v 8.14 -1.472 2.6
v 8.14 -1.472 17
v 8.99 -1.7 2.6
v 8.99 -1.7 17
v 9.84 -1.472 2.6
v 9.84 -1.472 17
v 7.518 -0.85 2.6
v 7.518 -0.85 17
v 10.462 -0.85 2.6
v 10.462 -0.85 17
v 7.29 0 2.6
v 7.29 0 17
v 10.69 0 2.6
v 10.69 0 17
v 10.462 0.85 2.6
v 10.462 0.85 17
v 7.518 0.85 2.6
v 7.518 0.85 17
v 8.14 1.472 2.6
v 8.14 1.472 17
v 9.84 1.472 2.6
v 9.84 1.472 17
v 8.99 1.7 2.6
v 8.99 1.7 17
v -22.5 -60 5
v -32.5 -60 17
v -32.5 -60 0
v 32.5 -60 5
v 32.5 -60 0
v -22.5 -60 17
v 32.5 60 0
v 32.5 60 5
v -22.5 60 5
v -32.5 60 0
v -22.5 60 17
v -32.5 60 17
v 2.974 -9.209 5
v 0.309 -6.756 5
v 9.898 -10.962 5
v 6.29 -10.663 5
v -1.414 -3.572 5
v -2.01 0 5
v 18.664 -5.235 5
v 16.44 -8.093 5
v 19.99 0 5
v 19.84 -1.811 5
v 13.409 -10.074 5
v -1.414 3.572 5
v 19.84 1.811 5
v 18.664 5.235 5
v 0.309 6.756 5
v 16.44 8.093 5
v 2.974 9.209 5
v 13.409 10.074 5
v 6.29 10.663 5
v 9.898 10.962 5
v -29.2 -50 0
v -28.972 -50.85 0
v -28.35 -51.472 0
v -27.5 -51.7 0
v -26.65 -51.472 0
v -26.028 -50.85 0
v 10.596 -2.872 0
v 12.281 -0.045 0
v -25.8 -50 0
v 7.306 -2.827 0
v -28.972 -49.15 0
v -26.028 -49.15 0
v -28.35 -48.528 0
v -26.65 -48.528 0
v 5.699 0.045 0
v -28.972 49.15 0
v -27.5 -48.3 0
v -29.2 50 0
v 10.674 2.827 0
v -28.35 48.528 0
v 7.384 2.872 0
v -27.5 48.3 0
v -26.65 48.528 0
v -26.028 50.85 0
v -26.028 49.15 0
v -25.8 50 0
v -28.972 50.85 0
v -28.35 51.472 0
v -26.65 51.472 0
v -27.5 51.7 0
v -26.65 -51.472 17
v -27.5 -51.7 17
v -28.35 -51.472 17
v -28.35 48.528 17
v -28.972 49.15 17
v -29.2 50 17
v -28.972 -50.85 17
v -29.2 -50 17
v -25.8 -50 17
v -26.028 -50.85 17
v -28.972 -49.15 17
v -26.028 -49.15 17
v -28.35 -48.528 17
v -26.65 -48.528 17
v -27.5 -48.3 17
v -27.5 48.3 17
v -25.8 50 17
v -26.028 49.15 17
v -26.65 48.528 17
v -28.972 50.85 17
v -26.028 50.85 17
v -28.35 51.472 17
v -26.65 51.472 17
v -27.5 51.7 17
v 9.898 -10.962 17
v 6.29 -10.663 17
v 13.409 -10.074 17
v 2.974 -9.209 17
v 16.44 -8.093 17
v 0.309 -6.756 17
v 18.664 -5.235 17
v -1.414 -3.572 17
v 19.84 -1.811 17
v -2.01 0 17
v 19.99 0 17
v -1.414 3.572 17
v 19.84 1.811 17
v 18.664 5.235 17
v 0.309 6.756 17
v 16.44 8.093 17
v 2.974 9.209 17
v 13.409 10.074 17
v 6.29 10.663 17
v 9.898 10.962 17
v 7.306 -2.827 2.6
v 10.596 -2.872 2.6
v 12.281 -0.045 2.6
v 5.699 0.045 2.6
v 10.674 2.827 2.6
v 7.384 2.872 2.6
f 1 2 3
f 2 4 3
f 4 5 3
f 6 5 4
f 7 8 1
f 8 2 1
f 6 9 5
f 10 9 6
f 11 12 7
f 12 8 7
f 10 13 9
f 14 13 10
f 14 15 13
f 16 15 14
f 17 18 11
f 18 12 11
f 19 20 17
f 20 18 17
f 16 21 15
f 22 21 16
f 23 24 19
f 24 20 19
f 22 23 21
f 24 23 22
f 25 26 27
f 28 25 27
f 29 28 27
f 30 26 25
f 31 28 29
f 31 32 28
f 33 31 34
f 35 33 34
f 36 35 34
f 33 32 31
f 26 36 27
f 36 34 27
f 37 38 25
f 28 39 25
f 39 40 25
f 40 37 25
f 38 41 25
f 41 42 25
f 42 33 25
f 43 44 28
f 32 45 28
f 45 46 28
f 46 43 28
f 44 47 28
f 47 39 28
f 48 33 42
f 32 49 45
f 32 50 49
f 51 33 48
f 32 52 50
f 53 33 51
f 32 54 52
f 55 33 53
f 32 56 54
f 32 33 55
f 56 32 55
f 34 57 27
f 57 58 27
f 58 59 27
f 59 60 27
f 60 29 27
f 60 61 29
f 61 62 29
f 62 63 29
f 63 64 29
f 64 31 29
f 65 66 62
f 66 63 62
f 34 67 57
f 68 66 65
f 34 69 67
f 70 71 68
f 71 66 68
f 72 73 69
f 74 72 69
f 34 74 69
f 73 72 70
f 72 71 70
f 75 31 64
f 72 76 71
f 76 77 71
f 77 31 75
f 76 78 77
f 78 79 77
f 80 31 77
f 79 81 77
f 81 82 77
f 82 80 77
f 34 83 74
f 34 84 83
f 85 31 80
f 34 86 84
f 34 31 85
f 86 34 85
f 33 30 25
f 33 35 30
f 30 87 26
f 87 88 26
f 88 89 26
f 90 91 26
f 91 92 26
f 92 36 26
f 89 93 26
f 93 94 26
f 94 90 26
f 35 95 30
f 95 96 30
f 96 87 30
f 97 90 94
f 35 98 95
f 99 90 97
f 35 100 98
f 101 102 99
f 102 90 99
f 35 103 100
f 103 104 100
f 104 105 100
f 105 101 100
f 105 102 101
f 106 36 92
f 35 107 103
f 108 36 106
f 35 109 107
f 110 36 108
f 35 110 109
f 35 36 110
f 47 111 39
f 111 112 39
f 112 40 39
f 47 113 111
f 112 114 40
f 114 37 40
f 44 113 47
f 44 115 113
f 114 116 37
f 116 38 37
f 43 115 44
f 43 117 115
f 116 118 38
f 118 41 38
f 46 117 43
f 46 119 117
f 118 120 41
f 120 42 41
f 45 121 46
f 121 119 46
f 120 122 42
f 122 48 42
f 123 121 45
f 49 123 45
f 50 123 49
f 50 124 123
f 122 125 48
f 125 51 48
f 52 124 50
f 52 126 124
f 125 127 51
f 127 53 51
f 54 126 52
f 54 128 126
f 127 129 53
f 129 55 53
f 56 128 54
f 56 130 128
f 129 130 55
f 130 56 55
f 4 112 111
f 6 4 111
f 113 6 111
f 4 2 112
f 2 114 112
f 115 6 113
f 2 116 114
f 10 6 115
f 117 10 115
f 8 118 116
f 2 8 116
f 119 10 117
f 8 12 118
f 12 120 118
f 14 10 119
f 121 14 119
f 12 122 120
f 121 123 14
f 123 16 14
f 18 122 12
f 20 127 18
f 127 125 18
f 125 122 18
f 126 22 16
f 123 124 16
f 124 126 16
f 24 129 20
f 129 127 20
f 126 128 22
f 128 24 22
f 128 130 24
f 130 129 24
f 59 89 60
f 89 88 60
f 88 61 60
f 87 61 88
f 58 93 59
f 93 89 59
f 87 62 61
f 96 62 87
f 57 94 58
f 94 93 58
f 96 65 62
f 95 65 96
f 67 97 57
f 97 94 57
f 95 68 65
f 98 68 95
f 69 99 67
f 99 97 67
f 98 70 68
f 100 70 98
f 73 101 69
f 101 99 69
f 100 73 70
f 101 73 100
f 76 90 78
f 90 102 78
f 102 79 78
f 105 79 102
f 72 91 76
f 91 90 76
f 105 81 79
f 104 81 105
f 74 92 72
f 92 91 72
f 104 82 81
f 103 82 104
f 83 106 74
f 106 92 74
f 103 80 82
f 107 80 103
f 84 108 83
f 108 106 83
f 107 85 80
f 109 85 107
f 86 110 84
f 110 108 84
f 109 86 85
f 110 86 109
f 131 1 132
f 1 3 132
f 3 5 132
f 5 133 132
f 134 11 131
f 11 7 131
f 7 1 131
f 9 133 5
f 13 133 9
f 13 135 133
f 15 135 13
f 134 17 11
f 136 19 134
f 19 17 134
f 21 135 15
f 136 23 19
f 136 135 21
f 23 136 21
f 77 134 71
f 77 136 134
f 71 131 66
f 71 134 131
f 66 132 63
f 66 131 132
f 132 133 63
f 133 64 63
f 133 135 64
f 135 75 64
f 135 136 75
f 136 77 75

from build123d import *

# Parameters (mm, degrees)
SKETCH1_W           = 120
SKETCH1_H           = 65
BOSS_EXTRUDE1_DEPTH = 5
SKETCH2_W           = 10
SKETCH2_H           = 120
BOSS_EXTRUDE2_DEPTH = 12
SKETCH3_R           = 11
BOSS_EXTRUDE3_DEPTH = 12
SKETCH4_R           = 1.7
CUT_EXTRUDE1_DEPTH  = 22
SKETCH5_R           = 1.7
CUT_EXTRUDE2_DEPTH  = 17
CUT_EXTRUDE3_DEPTH  = 2.6


with BuildPart() as part:
    # Sketch1 → Boss-Extrude1 (new body)
    with BuildSketch(Plane(origin=(0, 0, 0), x_dir=(0, 1, 0), z_dir=(0, 0, 1))):
        Rectangle(SKETCH1_W, SKETCH1_H)
    extrude(amount=BOSS_EXTRUDE1_DEPTH)

    # Sketch2 → Boss-Extrude2 (add)
    with BuildSketch(Plane.XY.offset(5)):
        with Locations((-27.5, 0)):
            Rectangle(SKETCH2_W, SKETCH2_H)
    extrude(amount=BOSS_EXTRUDE2_DEPTH)

    # Sketch3 → Boss-Extrude3 (add)
    with BuildSketch(Plane.XY.offset(5)):
        with Locations((8.99, 0)):
            Circle(SKETCH3_R)
    extrude(amount=BOSS_EXTRUDE3_DEPTH)

    # Sketch4 → Cut-Extrude1 (cut)
    with BuildSketch(Plane.XY.offset(17)):
        with Locations((-27.5, 50)):
            Circle(SKETCH4_R)
        with Locations((-27.5, -50)):
            Circle(SKETCH4_R)
    extrude(amount=-CUT_EXTRUDE1_DEPTH, mode=Mode.SUBTRACT)

    # Sketch5 → Cut-Extrude2 (cut)
    with BuildSketch(Plane.XY.offset(17)):
        with Locations((8.99, 0)):
            Circle(SKETCH5_R)
    extrude(amount=-CUT_EXTRUDE2_DEPTH, mode=Mode.SUBTRACT)

    # Sketch6 → Cut-Extrude3 (cut)
    with BuildSketch(Plane(origin=(0, 0, 0), x_dir=(1, 0, 0), z_dir=(0, 0, -1))):
        Polygon((7.383808361, -2.87230716), (10.674395148, -2.827156342), (12.280586787, 0.045150817), (10.596191639, 2.87230716), (7.305604852, 2.827156342), (5.699413213, -0.045150817), align=None)
    extrude(amount=-CUT_EXTRUDE3_DEPTH, mode=Mode.SUBTRACT)


solid = part.part
